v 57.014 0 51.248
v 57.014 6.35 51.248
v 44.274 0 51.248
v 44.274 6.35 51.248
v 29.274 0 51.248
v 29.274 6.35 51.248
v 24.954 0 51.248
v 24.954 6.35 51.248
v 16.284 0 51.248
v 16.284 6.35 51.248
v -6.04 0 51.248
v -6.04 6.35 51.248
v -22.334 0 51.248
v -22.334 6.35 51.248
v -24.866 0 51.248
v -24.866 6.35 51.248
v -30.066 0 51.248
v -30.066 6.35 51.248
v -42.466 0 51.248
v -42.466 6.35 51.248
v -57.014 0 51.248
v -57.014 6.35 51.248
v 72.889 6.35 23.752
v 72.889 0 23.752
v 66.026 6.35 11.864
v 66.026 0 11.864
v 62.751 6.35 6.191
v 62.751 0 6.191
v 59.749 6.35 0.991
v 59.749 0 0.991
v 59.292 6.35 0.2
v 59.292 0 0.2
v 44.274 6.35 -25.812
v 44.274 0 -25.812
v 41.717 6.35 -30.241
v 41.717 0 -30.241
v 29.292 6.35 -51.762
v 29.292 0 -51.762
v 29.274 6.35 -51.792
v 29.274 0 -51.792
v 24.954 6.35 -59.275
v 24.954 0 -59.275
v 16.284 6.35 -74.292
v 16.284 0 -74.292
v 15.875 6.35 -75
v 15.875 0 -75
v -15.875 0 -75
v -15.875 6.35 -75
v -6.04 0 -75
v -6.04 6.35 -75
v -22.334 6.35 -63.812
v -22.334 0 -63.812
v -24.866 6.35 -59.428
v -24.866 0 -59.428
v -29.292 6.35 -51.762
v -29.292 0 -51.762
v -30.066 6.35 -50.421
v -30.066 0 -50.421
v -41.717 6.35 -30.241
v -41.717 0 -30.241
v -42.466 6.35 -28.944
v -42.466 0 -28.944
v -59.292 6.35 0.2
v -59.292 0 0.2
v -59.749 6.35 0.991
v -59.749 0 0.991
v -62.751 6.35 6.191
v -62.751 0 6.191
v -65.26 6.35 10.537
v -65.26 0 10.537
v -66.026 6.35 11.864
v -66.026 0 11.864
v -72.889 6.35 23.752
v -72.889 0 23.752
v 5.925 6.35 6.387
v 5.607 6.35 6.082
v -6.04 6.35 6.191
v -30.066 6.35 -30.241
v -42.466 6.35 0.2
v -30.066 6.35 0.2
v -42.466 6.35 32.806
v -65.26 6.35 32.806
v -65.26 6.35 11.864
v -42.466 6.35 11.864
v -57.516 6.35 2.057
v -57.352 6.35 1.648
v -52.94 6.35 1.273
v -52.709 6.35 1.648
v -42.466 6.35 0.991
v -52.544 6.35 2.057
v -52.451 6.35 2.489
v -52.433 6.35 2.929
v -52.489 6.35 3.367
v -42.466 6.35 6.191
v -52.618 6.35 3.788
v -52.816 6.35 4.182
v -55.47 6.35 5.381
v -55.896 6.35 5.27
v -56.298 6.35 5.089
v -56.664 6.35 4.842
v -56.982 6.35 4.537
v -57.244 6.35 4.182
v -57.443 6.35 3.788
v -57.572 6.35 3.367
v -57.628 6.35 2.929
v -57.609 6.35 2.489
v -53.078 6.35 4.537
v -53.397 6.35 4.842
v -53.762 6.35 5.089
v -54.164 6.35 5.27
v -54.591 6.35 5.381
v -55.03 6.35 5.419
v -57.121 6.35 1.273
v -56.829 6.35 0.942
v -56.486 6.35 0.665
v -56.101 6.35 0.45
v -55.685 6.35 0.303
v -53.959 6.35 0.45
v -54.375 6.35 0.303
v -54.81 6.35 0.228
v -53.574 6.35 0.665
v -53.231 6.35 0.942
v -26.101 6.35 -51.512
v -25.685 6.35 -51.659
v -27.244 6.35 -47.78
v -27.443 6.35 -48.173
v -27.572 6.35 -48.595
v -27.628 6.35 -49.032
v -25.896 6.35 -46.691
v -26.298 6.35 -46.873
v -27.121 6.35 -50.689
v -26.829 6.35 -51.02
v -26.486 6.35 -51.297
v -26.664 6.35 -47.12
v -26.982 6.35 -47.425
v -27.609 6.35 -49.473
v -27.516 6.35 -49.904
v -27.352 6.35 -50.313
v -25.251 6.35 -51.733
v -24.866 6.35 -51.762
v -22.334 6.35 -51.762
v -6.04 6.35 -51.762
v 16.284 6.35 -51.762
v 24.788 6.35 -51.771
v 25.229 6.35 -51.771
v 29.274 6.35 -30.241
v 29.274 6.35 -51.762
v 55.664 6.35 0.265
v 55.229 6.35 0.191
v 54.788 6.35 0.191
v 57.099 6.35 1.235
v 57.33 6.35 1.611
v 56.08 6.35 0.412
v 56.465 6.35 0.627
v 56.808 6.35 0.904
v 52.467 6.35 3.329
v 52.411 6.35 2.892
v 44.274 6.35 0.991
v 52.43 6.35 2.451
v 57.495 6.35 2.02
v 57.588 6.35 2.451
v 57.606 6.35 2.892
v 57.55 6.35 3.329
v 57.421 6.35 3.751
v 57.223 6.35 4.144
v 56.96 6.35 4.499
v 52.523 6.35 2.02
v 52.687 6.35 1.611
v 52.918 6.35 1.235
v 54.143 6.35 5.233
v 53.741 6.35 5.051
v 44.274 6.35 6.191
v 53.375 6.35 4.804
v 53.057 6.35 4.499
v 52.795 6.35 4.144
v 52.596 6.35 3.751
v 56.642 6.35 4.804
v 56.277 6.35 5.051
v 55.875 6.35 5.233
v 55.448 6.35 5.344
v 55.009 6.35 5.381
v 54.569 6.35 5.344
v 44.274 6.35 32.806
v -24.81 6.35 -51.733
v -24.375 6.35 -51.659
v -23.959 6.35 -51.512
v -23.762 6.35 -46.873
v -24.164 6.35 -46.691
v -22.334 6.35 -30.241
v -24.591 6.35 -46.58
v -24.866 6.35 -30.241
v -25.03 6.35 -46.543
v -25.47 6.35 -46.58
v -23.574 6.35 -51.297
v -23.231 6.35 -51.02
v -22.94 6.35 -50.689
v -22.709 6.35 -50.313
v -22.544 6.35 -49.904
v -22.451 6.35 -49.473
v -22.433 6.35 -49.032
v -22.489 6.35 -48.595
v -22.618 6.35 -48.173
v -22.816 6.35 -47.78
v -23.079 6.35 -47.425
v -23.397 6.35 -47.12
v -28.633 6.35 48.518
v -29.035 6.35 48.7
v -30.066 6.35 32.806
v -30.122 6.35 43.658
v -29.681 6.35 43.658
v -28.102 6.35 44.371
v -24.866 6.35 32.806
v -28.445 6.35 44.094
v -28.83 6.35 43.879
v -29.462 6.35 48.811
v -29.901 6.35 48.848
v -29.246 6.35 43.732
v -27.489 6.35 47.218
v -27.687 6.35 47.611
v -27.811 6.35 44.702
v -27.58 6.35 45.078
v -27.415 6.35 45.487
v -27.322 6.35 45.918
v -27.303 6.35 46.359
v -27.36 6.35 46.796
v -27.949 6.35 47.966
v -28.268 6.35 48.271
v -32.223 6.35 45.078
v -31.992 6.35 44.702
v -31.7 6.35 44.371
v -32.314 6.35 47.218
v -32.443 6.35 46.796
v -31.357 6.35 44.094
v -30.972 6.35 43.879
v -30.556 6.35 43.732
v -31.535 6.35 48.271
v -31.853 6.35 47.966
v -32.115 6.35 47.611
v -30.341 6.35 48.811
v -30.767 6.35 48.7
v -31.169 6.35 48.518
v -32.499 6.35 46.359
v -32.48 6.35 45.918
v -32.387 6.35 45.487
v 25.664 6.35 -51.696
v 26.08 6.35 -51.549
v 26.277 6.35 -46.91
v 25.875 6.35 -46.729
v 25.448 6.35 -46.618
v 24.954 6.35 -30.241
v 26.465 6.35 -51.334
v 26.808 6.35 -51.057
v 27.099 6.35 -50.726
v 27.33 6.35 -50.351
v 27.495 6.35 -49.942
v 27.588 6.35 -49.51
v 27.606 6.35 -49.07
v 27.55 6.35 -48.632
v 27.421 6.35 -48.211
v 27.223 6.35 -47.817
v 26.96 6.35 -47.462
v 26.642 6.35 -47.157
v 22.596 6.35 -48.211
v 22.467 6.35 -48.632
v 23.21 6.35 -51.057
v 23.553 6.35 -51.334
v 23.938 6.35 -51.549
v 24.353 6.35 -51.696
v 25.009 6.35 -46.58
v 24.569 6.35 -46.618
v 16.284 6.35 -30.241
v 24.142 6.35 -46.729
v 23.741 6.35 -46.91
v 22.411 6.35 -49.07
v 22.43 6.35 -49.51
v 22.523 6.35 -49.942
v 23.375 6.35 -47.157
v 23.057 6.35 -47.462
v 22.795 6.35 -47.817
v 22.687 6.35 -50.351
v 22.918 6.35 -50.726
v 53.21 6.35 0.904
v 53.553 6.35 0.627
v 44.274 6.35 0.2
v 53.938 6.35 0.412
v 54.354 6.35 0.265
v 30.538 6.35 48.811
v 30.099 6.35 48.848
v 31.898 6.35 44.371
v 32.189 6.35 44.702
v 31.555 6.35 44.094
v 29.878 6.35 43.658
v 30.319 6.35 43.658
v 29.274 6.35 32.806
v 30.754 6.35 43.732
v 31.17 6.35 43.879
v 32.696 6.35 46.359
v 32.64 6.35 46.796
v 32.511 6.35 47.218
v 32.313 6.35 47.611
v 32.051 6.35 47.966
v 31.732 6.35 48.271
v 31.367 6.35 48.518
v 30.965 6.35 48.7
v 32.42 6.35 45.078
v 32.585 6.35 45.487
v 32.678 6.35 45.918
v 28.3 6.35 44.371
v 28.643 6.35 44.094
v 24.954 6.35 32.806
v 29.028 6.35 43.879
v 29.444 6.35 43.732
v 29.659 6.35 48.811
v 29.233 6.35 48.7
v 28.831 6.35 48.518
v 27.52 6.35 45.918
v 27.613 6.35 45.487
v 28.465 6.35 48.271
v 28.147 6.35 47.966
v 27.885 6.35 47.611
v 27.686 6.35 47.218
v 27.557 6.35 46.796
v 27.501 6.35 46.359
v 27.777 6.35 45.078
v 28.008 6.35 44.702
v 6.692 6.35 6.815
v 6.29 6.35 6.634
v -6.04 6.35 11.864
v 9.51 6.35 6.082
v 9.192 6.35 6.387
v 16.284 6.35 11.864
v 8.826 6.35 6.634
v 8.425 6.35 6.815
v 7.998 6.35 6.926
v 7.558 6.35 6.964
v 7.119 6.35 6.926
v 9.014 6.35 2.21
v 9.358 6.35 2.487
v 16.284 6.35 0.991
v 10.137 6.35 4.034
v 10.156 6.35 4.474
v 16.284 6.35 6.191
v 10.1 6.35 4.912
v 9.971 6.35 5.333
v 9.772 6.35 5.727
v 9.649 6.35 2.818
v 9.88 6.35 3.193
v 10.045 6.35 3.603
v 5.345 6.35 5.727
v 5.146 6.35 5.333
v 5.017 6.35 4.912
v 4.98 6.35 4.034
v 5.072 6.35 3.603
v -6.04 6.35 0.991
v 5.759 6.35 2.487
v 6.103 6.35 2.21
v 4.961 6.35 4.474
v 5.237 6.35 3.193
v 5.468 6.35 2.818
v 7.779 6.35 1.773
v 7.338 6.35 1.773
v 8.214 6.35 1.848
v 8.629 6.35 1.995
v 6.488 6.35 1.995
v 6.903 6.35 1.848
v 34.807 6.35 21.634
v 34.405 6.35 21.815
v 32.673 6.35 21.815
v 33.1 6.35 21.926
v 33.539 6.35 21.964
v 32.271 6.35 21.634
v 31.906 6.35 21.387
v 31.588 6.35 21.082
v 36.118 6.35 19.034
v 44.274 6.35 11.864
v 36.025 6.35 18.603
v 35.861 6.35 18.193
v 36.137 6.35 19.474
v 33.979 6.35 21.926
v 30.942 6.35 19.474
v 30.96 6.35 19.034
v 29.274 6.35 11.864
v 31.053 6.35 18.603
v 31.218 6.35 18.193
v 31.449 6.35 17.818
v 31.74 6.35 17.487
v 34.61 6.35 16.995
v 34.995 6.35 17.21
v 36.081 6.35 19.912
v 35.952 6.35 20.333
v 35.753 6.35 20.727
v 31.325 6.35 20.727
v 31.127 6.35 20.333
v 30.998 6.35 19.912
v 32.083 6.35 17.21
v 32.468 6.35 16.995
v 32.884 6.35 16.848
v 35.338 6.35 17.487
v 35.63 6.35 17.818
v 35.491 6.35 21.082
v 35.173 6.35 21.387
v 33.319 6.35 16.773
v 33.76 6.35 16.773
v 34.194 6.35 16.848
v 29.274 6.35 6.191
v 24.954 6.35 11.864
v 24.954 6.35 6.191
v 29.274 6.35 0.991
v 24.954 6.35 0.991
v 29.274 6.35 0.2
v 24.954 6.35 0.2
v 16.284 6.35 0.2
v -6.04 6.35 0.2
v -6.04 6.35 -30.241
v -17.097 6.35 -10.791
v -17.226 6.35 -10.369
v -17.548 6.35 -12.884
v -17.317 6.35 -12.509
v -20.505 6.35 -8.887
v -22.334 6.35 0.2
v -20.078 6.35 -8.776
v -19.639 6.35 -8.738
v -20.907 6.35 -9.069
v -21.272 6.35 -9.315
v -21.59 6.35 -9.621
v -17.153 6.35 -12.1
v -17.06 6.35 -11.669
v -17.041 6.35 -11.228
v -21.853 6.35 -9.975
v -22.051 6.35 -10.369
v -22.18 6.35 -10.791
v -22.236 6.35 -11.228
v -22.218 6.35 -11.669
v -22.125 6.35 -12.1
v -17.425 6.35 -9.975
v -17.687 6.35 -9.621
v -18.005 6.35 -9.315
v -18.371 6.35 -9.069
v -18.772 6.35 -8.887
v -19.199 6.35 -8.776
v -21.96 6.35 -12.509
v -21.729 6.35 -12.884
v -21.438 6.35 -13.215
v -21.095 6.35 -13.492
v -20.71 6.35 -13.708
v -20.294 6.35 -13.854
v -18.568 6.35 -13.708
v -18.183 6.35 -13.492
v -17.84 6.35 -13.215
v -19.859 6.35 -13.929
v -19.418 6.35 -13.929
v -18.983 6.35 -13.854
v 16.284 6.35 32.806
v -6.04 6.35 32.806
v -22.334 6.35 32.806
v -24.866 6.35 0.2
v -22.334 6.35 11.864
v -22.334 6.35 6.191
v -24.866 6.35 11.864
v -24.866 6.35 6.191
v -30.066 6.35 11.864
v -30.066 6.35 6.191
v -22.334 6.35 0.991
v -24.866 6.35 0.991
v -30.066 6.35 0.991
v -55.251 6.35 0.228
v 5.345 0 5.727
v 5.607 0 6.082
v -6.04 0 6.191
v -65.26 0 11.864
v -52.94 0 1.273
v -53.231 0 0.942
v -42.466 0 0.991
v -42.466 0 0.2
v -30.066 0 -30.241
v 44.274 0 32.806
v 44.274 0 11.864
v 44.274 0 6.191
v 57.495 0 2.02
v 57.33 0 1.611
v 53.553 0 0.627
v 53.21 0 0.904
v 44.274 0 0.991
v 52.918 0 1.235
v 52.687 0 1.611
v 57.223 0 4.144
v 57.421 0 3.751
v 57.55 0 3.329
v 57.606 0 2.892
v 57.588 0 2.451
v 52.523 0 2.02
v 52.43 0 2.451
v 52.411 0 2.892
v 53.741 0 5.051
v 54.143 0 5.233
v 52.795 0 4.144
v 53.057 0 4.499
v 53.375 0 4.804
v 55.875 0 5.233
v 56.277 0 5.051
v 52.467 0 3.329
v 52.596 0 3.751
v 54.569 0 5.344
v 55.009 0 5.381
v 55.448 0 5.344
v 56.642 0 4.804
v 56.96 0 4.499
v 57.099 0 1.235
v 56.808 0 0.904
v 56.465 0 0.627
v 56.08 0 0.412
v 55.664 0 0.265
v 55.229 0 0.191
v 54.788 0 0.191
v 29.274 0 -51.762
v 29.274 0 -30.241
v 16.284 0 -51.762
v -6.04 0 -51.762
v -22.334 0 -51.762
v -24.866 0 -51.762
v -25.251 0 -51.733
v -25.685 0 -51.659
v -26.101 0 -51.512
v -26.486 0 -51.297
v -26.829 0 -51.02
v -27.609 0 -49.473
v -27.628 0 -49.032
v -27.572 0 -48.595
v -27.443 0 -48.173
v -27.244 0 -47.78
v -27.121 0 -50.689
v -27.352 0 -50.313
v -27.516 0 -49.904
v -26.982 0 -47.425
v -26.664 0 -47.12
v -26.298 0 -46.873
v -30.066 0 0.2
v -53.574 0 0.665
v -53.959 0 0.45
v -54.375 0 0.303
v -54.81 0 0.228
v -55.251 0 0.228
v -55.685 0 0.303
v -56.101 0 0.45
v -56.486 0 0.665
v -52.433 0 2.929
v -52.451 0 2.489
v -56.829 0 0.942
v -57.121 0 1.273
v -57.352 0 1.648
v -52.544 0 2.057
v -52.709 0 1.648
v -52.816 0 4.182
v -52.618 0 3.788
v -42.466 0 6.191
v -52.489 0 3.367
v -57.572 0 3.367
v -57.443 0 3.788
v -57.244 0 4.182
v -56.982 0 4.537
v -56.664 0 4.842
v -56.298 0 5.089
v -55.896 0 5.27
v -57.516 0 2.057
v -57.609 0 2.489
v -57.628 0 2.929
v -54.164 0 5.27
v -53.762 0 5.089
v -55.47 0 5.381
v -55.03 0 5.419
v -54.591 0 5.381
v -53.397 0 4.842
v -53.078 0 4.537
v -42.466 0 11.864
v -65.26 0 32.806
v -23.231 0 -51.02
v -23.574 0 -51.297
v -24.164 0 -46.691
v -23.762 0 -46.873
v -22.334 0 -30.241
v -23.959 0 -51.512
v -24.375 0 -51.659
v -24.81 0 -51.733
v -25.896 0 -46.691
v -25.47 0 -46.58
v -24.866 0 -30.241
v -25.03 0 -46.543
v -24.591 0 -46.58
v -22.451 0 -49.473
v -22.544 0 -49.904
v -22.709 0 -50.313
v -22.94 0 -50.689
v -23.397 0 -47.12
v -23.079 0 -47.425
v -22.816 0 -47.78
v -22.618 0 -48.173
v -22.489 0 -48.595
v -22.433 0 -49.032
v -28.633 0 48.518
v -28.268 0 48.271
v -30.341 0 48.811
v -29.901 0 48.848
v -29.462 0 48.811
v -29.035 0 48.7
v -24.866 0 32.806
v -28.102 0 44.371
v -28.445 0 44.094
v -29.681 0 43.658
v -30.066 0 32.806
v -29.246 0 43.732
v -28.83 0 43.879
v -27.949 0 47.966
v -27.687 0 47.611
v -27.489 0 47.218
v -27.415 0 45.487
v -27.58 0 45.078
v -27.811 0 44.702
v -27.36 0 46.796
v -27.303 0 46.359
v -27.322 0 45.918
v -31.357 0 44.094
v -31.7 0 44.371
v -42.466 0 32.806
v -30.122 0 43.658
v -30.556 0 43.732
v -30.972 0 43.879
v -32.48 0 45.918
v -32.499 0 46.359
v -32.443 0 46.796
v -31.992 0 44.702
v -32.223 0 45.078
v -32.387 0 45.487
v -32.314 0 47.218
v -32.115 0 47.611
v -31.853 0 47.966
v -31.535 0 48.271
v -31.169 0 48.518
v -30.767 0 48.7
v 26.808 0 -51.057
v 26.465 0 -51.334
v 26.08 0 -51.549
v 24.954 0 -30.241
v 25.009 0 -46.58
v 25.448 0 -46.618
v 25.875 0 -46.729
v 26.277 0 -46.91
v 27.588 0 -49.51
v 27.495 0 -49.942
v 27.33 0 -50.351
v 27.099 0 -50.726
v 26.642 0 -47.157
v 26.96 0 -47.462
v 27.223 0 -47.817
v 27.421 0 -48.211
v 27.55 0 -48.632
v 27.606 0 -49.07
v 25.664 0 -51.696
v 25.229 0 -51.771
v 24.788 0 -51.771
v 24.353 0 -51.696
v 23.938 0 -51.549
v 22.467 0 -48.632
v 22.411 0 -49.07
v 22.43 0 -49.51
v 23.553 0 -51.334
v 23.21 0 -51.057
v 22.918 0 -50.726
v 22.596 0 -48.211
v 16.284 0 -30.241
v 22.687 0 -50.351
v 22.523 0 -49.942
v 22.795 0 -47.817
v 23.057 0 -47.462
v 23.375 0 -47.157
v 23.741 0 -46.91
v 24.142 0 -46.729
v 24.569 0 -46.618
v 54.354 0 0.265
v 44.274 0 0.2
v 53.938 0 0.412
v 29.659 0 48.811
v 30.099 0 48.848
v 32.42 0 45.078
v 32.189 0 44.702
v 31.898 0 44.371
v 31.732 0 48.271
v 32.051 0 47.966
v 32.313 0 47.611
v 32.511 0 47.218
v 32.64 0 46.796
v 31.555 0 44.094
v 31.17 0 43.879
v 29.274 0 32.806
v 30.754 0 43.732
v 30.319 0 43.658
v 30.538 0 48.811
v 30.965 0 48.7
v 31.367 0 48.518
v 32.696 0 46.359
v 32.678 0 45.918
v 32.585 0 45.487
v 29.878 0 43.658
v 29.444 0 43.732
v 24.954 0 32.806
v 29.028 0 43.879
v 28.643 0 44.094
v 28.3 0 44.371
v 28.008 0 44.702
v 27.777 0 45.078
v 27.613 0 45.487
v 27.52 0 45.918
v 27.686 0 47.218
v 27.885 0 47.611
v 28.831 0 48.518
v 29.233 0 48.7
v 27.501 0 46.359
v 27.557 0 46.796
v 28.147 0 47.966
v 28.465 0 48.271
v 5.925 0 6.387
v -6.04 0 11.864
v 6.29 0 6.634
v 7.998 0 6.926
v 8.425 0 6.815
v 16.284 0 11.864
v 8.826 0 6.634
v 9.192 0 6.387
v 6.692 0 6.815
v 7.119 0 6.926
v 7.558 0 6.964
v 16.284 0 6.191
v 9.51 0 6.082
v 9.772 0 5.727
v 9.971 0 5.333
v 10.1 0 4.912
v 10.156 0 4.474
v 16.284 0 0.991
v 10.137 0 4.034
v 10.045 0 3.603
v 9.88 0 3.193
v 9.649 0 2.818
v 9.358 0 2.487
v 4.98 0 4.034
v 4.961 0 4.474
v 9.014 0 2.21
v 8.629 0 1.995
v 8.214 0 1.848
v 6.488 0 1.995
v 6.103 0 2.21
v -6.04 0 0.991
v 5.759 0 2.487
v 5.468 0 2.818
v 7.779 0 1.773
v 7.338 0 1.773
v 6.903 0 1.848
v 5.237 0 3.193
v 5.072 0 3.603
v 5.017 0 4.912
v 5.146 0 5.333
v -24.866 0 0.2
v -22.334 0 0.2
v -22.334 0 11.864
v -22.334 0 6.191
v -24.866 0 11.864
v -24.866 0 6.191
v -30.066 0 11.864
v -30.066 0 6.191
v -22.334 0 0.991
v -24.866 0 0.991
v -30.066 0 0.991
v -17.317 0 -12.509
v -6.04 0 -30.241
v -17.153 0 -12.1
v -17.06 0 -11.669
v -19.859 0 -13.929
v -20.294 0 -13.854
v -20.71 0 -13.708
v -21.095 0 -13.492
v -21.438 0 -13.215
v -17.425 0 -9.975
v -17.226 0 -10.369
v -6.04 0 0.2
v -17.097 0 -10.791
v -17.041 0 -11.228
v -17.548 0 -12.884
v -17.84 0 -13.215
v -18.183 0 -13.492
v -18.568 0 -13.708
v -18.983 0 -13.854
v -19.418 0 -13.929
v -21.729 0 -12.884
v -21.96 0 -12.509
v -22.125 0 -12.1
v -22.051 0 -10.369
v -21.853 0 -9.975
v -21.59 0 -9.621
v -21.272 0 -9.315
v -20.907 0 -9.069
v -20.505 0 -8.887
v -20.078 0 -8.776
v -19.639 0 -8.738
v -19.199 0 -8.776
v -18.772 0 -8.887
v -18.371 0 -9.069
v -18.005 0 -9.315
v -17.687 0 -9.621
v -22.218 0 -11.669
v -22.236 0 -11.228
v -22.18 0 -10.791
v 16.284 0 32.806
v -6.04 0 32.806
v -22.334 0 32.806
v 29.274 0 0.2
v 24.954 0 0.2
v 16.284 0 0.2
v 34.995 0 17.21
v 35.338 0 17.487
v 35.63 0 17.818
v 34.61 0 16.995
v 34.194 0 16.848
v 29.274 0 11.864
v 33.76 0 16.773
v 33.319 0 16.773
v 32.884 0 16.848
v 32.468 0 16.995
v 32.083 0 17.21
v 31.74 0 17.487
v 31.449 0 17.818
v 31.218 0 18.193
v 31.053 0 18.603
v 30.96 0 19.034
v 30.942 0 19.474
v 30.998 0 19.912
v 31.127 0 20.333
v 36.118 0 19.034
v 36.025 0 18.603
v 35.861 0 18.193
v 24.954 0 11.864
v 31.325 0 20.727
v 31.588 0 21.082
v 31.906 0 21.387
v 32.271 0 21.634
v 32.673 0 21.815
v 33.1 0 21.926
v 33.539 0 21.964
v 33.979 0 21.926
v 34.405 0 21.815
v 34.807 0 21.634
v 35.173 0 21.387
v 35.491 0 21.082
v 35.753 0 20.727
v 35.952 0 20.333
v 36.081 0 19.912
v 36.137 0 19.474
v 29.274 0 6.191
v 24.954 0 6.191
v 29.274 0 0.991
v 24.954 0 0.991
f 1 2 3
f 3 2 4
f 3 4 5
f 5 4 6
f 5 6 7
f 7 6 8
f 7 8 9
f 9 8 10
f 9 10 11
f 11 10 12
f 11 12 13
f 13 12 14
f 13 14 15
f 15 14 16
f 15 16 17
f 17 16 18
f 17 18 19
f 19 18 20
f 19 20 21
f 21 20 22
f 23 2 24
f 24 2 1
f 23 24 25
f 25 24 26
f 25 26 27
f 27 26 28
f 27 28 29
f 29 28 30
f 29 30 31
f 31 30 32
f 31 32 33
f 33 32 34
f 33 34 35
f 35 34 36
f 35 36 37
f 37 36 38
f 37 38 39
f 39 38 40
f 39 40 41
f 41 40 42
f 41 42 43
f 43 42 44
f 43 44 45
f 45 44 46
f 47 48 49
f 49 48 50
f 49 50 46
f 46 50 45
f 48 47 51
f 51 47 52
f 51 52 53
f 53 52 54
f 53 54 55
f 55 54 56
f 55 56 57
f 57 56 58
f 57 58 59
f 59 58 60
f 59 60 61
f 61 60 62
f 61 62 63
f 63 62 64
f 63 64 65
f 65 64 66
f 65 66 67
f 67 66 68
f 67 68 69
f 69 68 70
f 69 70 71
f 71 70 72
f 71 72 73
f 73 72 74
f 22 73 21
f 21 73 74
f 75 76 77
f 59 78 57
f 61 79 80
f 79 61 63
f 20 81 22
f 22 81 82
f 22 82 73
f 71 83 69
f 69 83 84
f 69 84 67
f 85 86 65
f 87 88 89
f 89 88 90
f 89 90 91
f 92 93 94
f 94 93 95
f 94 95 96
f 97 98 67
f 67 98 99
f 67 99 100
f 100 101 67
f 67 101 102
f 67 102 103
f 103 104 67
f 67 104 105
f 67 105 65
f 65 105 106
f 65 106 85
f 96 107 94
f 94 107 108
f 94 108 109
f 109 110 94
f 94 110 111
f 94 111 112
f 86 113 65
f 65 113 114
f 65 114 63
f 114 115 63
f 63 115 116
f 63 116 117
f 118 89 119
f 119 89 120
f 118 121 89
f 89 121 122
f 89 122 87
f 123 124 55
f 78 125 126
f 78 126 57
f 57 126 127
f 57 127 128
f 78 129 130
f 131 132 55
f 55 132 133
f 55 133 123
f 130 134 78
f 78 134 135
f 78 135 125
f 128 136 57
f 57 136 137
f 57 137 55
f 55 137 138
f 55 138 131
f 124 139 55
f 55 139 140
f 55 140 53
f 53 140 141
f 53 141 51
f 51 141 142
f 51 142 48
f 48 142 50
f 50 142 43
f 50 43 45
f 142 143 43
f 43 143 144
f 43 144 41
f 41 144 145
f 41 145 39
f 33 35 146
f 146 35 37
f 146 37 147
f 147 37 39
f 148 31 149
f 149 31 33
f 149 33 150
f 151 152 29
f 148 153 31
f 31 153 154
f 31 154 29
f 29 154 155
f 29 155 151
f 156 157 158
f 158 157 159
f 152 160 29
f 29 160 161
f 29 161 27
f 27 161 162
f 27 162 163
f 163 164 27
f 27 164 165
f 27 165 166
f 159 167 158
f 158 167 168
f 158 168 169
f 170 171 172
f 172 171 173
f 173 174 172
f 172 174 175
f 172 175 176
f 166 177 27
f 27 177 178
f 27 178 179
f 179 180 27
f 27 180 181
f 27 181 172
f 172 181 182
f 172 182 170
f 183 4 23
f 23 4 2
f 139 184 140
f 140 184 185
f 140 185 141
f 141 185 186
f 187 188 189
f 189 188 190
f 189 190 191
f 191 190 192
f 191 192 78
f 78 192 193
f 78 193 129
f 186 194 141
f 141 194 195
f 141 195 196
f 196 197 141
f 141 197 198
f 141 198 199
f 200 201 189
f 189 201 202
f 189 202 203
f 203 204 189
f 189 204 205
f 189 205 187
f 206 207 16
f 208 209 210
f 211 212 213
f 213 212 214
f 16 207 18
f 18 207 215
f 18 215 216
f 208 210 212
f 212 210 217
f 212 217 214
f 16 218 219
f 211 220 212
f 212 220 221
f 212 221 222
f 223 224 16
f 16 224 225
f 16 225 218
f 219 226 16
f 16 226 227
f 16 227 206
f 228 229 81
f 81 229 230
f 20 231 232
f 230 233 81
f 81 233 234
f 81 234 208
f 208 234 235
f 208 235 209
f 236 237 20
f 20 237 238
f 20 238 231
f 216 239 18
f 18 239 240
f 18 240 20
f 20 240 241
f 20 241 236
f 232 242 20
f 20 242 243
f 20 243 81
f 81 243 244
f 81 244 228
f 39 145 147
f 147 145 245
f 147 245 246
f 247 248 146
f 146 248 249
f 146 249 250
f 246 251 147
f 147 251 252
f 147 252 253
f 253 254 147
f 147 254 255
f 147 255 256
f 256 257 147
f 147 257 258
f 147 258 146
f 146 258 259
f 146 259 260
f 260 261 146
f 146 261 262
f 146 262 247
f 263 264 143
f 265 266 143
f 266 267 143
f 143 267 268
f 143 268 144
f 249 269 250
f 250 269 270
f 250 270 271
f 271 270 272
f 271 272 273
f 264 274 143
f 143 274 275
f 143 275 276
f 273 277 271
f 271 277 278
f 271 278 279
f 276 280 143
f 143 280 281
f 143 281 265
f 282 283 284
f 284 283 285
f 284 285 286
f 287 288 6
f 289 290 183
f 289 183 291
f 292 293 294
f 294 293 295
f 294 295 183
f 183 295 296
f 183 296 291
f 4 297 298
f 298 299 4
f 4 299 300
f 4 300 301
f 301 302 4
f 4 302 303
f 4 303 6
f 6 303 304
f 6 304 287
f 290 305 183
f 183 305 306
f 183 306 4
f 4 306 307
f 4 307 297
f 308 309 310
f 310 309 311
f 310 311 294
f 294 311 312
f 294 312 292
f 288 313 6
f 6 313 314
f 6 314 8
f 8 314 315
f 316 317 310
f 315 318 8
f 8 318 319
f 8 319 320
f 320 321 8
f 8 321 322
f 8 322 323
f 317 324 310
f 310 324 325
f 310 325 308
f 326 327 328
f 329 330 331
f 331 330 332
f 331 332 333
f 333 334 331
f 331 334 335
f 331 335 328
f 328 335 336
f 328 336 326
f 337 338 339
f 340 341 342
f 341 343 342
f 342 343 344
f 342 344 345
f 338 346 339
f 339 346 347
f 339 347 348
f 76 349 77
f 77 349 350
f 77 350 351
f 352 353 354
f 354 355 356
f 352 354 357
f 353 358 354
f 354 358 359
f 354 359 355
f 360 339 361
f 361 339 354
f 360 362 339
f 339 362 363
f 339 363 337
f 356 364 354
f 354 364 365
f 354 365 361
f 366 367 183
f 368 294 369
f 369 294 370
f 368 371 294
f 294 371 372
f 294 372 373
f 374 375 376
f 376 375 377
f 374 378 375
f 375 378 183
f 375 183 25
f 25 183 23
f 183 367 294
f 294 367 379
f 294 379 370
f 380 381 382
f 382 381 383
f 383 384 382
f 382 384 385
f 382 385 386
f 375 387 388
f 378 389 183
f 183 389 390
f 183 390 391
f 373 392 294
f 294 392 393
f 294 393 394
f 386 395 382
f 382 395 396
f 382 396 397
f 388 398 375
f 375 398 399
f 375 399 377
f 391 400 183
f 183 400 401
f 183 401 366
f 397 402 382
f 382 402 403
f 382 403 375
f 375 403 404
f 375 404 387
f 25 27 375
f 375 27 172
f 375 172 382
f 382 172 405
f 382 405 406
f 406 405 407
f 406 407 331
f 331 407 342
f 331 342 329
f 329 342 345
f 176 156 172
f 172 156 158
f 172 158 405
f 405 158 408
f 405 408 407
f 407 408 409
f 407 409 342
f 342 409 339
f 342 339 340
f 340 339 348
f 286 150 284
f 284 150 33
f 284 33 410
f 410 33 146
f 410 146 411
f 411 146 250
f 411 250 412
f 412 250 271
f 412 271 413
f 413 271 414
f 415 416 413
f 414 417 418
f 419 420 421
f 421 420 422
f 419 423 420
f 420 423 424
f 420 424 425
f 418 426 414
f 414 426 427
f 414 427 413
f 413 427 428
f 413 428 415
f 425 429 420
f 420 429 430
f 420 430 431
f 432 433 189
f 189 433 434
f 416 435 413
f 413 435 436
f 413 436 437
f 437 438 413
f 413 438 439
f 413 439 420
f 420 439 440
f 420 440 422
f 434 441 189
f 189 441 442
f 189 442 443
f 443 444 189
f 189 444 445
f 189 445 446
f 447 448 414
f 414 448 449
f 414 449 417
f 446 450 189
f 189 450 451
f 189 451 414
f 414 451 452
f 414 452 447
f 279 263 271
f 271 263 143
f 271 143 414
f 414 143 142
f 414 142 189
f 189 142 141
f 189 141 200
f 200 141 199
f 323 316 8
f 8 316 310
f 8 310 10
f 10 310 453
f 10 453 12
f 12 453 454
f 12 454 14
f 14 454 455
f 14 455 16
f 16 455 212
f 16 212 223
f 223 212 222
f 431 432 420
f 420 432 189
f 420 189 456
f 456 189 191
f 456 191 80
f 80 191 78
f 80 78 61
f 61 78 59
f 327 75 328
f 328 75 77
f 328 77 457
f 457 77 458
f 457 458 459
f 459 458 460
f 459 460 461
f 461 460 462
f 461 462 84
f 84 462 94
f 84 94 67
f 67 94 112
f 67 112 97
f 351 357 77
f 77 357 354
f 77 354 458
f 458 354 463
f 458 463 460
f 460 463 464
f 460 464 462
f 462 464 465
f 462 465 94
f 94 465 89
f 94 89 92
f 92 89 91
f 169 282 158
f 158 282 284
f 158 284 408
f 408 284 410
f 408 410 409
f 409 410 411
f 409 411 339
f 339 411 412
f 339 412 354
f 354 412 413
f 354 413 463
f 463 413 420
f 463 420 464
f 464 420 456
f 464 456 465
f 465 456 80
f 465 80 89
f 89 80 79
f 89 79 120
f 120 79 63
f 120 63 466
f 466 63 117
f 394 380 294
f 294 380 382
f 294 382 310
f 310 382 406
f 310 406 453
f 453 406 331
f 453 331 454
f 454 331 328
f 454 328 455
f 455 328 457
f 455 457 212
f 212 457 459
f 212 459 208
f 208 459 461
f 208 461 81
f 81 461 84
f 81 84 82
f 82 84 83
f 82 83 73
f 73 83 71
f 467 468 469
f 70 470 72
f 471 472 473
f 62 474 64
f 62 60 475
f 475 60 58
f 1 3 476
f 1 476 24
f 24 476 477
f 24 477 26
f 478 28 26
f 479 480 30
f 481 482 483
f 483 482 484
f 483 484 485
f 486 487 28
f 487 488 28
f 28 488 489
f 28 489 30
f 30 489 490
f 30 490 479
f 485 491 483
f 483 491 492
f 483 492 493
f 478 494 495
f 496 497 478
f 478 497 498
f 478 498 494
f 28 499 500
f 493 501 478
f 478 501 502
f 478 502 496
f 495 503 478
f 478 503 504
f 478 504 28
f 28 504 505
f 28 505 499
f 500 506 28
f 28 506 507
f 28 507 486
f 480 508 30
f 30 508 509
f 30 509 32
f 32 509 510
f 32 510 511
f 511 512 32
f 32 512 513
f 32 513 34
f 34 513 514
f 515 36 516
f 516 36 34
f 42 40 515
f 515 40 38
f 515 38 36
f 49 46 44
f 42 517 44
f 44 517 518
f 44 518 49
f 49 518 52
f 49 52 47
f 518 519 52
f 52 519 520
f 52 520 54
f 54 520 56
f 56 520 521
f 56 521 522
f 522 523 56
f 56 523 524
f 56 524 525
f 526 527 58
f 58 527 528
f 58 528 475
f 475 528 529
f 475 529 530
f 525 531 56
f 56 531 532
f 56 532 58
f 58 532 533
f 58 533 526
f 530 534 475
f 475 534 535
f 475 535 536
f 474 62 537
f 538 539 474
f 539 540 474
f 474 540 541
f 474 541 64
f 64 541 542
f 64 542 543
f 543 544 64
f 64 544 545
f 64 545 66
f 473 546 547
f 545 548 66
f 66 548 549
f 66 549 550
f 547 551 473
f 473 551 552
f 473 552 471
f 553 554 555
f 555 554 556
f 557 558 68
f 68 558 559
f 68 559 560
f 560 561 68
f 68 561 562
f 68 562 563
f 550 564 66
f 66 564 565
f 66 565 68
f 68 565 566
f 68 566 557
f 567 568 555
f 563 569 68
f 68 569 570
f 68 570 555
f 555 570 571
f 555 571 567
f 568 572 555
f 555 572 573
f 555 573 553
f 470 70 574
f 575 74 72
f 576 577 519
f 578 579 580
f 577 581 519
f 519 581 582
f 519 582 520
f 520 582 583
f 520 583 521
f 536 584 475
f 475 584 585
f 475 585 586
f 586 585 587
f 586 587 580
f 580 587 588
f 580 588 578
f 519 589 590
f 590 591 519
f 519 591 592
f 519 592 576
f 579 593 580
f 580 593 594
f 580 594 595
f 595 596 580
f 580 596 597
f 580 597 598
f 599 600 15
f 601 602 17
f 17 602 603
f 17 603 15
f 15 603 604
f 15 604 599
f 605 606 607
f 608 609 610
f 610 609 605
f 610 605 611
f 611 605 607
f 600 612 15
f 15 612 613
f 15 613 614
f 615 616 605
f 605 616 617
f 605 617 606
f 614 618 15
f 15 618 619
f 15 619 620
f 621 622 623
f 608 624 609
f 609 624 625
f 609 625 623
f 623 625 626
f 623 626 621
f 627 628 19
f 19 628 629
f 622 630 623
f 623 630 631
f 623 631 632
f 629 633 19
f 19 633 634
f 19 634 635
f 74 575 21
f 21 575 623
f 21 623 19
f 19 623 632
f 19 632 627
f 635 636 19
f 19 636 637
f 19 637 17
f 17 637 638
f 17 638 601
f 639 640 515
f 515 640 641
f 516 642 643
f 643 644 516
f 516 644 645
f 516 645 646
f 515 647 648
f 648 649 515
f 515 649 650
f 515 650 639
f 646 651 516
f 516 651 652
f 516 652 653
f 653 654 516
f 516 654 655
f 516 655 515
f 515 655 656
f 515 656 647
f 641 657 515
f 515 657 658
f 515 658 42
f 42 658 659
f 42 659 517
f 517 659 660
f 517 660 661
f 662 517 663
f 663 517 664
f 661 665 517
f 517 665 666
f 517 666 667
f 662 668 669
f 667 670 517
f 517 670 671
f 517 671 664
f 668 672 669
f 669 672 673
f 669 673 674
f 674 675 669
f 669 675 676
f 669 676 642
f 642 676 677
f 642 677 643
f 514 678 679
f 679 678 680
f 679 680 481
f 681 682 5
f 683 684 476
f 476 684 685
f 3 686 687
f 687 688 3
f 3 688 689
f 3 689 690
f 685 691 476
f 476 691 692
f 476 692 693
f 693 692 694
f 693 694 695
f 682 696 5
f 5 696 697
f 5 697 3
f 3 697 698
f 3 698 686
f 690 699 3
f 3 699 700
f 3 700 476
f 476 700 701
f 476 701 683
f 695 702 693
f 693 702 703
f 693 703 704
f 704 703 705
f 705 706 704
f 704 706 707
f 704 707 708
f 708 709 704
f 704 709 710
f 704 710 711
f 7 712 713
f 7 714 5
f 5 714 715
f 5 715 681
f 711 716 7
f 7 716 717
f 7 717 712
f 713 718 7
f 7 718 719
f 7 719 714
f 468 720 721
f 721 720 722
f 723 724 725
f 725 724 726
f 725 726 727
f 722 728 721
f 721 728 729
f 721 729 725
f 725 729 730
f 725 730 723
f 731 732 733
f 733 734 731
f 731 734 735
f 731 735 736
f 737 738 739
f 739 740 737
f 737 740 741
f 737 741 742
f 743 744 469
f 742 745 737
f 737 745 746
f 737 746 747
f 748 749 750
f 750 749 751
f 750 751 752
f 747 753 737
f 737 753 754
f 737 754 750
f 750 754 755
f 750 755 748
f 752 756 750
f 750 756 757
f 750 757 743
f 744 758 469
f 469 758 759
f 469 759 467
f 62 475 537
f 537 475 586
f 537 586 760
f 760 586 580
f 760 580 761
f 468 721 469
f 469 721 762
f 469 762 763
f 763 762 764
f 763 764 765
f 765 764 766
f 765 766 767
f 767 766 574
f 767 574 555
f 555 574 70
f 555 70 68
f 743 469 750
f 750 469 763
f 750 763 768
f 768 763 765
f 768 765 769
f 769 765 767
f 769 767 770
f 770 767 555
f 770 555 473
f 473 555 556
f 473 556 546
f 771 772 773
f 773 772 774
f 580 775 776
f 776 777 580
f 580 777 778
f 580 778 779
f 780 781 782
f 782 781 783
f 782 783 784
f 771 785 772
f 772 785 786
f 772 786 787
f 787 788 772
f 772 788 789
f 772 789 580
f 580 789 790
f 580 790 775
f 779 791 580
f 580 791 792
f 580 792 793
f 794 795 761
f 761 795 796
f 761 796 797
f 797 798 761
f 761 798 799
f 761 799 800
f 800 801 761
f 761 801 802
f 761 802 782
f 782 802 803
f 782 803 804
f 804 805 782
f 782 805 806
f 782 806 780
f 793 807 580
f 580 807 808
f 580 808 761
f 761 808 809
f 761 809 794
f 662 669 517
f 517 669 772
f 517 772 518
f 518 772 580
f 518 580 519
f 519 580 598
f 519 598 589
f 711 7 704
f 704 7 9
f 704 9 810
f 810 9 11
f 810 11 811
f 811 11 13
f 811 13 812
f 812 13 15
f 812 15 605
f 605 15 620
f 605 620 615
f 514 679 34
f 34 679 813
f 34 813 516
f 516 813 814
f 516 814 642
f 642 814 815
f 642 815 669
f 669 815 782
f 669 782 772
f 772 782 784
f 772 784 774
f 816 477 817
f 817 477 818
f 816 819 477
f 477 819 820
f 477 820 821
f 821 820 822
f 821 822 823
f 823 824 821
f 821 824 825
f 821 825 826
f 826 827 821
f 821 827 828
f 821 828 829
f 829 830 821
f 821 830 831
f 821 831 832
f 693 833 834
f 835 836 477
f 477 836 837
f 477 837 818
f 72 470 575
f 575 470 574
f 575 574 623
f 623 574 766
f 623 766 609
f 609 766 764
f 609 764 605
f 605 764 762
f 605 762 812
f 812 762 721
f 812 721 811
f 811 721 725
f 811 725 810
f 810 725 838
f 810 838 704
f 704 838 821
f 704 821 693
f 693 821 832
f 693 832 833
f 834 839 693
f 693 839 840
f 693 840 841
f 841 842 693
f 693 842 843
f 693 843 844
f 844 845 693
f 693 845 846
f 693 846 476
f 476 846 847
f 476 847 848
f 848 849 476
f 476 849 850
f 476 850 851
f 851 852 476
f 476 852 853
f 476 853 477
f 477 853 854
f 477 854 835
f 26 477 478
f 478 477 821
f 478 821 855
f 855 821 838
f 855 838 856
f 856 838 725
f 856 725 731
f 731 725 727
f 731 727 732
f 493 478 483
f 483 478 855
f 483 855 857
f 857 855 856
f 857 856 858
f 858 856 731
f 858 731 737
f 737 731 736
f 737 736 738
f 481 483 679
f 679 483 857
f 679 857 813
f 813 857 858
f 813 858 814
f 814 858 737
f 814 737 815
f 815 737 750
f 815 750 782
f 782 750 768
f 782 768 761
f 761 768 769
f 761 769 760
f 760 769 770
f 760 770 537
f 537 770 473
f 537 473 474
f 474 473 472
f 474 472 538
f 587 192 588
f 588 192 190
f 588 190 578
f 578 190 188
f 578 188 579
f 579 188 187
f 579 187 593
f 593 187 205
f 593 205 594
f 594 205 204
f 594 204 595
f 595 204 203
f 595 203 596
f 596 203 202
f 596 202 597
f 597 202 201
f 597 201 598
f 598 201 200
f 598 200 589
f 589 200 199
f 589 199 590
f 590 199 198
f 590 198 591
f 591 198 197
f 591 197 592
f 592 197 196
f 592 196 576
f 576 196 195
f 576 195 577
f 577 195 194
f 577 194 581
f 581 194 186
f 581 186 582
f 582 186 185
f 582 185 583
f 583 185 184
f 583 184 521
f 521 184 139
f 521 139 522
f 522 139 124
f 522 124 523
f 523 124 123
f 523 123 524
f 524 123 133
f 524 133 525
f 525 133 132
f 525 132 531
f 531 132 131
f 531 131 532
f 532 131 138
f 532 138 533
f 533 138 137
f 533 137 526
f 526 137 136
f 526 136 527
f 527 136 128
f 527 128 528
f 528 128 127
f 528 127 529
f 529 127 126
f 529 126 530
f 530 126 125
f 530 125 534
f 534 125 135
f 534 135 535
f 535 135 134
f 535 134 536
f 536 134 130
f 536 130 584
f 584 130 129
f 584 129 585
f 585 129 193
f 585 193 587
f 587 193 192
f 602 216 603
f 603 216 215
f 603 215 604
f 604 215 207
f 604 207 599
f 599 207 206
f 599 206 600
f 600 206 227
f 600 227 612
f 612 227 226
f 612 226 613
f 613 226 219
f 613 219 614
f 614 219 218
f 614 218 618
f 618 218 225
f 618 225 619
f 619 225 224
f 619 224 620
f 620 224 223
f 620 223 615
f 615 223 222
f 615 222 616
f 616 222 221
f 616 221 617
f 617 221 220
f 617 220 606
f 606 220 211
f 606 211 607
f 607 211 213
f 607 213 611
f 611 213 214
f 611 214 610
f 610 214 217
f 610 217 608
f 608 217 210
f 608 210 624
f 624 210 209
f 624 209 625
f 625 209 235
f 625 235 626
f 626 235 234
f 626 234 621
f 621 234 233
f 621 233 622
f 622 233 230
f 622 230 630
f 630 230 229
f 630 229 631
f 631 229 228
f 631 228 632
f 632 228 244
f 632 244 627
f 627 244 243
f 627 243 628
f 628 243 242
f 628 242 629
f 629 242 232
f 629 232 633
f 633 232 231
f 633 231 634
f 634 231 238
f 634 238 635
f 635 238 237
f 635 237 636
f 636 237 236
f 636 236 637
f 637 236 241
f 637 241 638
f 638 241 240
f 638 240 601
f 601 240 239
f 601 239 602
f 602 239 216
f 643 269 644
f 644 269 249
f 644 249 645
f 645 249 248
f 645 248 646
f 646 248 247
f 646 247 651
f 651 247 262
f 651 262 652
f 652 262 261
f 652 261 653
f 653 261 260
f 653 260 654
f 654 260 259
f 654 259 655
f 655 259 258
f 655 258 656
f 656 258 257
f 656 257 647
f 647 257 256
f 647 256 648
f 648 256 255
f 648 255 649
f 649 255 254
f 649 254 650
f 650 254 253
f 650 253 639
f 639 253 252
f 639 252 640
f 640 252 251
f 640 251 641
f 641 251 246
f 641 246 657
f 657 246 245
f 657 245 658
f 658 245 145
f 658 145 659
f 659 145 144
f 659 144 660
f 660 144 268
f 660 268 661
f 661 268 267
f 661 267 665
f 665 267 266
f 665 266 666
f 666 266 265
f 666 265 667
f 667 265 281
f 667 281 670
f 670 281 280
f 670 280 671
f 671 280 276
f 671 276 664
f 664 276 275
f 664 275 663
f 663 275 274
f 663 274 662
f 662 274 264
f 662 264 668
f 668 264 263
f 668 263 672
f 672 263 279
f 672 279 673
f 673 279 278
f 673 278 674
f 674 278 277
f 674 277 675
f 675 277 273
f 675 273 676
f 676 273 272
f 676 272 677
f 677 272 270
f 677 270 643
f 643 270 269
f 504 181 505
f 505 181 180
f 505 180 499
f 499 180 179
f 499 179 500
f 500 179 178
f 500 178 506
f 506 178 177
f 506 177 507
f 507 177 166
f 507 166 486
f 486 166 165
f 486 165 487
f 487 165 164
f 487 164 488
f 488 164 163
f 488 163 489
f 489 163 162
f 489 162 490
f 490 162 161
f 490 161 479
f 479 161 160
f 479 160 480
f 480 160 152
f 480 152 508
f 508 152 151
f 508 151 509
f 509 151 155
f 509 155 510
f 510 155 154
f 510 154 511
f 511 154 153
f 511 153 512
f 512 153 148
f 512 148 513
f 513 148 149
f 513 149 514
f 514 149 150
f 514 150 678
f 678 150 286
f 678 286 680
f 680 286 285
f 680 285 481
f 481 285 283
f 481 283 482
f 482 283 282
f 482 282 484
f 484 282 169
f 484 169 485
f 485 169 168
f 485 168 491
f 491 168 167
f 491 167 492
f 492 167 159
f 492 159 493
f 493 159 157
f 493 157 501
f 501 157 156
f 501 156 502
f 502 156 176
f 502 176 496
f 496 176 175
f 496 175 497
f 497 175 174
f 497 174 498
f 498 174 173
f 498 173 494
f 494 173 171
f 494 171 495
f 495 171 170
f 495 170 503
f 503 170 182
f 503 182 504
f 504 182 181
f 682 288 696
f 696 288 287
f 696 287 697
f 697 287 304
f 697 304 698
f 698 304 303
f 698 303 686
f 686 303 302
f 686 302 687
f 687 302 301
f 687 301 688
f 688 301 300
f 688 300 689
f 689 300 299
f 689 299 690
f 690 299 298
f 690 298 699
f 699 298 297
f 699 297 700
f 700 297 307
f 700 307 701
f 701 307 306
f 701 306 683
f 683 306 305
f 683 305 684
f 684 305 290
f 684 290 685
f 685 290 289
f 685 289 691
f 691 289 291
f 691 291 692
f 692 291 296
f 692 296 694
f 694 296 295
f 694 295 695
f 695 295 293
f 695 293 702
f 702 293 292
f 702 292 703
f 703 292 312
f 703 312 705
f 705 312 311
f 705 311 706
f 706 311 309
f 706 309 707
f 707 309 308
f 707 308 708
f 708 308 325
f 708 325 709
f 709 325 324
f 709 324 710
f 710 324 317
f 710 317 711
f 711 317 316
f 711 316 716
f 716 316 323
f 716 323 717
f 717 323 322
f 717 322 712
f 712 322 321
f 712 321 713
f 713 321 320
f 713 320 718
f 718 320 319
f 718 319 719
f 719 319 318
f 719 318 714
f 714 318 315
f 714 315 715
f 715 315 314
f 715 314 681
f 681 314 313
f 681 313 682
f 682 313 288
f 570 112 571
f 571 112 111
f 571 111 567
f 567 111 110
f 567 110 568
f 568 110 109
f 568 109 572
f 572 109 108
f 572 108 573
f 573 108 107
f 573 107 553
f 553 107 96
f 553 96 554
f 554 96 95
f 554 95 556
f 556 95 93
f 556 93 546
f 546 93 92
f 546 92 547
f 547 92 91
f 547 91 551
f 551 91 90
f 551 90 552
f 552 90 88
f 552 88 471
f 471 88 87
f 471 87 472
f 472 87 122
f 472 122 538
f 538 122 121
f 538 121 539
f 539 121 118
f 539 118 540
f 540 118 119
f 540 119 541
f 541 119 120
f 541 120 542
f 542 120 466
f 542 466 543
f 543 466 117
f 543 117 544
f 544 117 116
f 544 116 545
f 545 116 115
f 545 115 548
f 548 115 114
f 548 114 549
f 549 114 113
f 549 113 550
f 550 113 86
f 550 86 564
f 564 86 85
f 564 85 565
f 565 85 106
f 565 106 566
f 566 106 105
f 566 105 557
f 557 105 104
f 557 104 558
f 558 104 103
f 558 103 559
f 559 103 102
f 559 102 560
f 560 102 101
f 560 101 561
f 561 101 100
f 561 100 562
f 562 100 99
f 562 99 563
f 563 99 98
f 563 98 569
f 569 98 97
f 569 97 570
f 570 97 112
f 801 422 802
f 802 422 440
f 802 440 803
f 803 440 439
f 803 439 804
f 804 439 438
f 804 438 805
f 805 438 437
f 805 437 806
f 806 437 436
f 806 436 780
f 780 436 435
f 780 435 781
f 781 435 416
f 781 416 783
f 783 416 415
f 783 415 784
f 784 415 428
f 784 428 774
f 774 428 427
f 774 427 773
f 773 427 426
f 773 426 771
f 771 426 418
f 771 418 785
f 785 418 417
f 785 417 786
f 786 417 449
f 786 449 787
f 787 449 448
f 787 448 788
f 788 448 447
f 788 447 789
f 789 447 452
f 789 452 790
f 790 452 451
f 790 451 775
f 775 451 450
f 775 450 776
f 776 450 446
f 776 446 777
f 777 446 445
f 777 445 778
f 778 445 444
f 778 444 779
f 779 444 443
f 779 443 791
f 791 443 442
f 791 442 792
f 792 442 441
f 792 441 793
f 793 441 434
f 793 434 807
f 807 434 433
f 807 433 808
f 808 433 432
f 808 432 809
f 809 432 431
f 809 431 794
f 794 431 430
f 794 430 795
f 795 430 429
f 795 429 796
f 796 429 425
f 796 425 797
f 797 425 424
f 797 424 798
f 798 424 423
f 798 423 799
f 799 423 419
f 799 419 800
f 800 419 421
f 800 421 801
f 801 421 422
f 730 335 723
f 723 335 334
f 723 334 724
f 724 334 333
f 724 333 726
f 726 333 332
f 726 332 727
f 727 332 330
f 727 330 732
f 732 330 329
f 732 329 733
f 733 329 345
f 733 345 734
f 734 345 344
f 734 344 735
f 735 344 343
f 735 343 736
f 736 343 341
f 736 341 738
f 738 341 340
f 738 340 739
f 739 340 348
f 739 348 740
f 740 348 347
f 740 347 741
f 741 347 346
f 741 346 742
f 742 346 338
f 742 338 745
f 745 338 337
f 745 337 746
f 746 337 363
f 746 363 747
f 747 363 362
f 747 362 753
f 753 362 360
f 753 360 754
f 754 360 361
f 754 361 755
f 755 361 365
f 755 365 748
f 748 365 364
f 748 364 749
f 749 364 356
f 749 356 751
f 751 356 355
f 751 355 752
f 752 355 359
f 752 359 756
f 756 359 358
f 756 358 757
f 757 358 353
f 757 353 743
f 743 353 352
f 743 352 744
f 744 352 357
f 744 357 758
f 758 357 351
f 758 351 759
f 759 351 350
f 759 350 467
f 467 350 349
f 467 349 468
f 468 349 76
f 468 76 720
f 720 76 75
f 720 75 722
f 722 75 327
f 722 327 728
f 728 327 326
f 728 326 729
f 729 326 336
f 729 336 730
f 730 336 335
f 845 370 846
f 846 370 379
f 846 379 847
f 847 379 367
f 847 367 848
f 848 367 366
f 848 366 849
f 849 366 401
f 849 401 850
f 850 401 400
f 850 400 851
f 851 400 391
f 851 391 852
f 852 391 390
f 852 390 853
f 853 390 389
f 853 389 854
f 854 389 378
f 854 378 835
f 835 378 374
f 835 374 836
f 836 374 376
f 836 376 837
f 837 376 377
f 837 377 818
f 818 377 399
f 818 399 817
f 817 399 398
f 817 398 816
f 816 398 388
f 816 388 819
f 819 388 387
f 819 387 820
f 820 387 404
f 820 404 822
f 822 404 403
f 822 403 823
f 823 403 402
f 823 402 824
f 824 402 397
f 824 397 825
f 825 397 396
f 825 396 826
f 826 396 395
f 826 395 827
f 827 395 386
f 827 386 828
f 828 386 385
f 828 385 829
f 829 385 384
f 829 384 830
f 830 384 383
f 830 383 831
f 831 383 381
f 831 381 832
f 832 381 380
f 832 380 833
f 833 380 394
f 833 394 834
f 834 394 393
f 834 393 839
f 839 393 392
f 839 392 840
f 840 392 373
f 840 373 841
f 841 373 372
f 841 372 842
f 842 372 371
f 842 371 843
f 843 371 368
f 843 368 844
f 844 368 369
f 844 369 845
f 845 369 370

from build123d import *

# Parameters (mm, degrees)
BOSS_EXTRUDE1_DEPTH = 6.35
SKETCH9_R           = 2.6
CUT_EXTRUDE1_DEPTH  = 105.776848123
SKETCH12_R          = 2.6
CUT_EXTRUDE4_DEPTH  = 105.776848123


with BuildPart() as part:
    # Sketch1 → Boss-Extrude1 (new body)
    with BuildSketch(Plane(origin=(0, 0, 0), x_dir=(1, 0, 0), z_dir=(0, 1, 0))):
        Polygon((-15.875, 75), (15.875, 75), (72.889405284, -23.751846715), (57.014405284, -51.248153285), (-57.014405284, -51.248153285), (-72.889405284, -23.751846715), align=None)
    extrude(amount=BOSS_EXTRUDE1_DEPTH)

    # Sketch9 → Cut-Extrude1 (cut, through all)
    with BuildSketch(Plane(origin=(0, 6.35, 0), x_dir=(1, 0, 0), z_dir=(0, 1, 0))):
        with Locations(Location((-25.030312278, 49.142819263, 0), (0, 0, 270))):
            Circle(SKETCH9_R)
        with Locations(Location((25.008570083, 49.180192562, 0), (0, 0, 270))):
            Circle(SKETCH9_R)
        with Locations(Location((55.008731986, -2.78123819, 0), (0, 0, 270))):
            Circle(SKETCH9_R)
        with Locations(Location((30.09884337, -46.248153285, 0), (0, 0, 270))):
            Circle(SKETCH9_R)
        with Locations(Location((-55.030188745, -2.818776286, 0), (0, 0, 270))):
            Circle(SKETCH9_R)
        with Locations(Location((-29.90115663, -46.248153285, 0), (0, 0, 270))):
            Circle(SKETCH9_R)
    extrude(amount=-CUT_EXTRUDE1_DEPTH, mode=Mode.SUBTRACT)

    # Sketch12 → Cut-Extrude4 (cut, through all)
    with BuildSketch(Plane(origin=(0, 6.35, 0), x_dir=(1, 0, 0), z_dir=(0, 1, 0))):
        with Locations(Location((33.539251883, -19.363896103, 0), (0, 0, 270))):
            Circle(SKETCH12_R)
        with Locations(Location((7.55848977, -4.363896103, 0), (0, 0, 270))):
            Circle(SKETCH12_R)
        with Locations(Location((-19.638606793, 11.338354919, 0), (0, 0, 270))):
            Circle(SKETCH12_R)
    extrude(amount=-CUT_EXTRUDE4_DEPTH, mode=Mode.SUBTRACT)


solid = part.part
